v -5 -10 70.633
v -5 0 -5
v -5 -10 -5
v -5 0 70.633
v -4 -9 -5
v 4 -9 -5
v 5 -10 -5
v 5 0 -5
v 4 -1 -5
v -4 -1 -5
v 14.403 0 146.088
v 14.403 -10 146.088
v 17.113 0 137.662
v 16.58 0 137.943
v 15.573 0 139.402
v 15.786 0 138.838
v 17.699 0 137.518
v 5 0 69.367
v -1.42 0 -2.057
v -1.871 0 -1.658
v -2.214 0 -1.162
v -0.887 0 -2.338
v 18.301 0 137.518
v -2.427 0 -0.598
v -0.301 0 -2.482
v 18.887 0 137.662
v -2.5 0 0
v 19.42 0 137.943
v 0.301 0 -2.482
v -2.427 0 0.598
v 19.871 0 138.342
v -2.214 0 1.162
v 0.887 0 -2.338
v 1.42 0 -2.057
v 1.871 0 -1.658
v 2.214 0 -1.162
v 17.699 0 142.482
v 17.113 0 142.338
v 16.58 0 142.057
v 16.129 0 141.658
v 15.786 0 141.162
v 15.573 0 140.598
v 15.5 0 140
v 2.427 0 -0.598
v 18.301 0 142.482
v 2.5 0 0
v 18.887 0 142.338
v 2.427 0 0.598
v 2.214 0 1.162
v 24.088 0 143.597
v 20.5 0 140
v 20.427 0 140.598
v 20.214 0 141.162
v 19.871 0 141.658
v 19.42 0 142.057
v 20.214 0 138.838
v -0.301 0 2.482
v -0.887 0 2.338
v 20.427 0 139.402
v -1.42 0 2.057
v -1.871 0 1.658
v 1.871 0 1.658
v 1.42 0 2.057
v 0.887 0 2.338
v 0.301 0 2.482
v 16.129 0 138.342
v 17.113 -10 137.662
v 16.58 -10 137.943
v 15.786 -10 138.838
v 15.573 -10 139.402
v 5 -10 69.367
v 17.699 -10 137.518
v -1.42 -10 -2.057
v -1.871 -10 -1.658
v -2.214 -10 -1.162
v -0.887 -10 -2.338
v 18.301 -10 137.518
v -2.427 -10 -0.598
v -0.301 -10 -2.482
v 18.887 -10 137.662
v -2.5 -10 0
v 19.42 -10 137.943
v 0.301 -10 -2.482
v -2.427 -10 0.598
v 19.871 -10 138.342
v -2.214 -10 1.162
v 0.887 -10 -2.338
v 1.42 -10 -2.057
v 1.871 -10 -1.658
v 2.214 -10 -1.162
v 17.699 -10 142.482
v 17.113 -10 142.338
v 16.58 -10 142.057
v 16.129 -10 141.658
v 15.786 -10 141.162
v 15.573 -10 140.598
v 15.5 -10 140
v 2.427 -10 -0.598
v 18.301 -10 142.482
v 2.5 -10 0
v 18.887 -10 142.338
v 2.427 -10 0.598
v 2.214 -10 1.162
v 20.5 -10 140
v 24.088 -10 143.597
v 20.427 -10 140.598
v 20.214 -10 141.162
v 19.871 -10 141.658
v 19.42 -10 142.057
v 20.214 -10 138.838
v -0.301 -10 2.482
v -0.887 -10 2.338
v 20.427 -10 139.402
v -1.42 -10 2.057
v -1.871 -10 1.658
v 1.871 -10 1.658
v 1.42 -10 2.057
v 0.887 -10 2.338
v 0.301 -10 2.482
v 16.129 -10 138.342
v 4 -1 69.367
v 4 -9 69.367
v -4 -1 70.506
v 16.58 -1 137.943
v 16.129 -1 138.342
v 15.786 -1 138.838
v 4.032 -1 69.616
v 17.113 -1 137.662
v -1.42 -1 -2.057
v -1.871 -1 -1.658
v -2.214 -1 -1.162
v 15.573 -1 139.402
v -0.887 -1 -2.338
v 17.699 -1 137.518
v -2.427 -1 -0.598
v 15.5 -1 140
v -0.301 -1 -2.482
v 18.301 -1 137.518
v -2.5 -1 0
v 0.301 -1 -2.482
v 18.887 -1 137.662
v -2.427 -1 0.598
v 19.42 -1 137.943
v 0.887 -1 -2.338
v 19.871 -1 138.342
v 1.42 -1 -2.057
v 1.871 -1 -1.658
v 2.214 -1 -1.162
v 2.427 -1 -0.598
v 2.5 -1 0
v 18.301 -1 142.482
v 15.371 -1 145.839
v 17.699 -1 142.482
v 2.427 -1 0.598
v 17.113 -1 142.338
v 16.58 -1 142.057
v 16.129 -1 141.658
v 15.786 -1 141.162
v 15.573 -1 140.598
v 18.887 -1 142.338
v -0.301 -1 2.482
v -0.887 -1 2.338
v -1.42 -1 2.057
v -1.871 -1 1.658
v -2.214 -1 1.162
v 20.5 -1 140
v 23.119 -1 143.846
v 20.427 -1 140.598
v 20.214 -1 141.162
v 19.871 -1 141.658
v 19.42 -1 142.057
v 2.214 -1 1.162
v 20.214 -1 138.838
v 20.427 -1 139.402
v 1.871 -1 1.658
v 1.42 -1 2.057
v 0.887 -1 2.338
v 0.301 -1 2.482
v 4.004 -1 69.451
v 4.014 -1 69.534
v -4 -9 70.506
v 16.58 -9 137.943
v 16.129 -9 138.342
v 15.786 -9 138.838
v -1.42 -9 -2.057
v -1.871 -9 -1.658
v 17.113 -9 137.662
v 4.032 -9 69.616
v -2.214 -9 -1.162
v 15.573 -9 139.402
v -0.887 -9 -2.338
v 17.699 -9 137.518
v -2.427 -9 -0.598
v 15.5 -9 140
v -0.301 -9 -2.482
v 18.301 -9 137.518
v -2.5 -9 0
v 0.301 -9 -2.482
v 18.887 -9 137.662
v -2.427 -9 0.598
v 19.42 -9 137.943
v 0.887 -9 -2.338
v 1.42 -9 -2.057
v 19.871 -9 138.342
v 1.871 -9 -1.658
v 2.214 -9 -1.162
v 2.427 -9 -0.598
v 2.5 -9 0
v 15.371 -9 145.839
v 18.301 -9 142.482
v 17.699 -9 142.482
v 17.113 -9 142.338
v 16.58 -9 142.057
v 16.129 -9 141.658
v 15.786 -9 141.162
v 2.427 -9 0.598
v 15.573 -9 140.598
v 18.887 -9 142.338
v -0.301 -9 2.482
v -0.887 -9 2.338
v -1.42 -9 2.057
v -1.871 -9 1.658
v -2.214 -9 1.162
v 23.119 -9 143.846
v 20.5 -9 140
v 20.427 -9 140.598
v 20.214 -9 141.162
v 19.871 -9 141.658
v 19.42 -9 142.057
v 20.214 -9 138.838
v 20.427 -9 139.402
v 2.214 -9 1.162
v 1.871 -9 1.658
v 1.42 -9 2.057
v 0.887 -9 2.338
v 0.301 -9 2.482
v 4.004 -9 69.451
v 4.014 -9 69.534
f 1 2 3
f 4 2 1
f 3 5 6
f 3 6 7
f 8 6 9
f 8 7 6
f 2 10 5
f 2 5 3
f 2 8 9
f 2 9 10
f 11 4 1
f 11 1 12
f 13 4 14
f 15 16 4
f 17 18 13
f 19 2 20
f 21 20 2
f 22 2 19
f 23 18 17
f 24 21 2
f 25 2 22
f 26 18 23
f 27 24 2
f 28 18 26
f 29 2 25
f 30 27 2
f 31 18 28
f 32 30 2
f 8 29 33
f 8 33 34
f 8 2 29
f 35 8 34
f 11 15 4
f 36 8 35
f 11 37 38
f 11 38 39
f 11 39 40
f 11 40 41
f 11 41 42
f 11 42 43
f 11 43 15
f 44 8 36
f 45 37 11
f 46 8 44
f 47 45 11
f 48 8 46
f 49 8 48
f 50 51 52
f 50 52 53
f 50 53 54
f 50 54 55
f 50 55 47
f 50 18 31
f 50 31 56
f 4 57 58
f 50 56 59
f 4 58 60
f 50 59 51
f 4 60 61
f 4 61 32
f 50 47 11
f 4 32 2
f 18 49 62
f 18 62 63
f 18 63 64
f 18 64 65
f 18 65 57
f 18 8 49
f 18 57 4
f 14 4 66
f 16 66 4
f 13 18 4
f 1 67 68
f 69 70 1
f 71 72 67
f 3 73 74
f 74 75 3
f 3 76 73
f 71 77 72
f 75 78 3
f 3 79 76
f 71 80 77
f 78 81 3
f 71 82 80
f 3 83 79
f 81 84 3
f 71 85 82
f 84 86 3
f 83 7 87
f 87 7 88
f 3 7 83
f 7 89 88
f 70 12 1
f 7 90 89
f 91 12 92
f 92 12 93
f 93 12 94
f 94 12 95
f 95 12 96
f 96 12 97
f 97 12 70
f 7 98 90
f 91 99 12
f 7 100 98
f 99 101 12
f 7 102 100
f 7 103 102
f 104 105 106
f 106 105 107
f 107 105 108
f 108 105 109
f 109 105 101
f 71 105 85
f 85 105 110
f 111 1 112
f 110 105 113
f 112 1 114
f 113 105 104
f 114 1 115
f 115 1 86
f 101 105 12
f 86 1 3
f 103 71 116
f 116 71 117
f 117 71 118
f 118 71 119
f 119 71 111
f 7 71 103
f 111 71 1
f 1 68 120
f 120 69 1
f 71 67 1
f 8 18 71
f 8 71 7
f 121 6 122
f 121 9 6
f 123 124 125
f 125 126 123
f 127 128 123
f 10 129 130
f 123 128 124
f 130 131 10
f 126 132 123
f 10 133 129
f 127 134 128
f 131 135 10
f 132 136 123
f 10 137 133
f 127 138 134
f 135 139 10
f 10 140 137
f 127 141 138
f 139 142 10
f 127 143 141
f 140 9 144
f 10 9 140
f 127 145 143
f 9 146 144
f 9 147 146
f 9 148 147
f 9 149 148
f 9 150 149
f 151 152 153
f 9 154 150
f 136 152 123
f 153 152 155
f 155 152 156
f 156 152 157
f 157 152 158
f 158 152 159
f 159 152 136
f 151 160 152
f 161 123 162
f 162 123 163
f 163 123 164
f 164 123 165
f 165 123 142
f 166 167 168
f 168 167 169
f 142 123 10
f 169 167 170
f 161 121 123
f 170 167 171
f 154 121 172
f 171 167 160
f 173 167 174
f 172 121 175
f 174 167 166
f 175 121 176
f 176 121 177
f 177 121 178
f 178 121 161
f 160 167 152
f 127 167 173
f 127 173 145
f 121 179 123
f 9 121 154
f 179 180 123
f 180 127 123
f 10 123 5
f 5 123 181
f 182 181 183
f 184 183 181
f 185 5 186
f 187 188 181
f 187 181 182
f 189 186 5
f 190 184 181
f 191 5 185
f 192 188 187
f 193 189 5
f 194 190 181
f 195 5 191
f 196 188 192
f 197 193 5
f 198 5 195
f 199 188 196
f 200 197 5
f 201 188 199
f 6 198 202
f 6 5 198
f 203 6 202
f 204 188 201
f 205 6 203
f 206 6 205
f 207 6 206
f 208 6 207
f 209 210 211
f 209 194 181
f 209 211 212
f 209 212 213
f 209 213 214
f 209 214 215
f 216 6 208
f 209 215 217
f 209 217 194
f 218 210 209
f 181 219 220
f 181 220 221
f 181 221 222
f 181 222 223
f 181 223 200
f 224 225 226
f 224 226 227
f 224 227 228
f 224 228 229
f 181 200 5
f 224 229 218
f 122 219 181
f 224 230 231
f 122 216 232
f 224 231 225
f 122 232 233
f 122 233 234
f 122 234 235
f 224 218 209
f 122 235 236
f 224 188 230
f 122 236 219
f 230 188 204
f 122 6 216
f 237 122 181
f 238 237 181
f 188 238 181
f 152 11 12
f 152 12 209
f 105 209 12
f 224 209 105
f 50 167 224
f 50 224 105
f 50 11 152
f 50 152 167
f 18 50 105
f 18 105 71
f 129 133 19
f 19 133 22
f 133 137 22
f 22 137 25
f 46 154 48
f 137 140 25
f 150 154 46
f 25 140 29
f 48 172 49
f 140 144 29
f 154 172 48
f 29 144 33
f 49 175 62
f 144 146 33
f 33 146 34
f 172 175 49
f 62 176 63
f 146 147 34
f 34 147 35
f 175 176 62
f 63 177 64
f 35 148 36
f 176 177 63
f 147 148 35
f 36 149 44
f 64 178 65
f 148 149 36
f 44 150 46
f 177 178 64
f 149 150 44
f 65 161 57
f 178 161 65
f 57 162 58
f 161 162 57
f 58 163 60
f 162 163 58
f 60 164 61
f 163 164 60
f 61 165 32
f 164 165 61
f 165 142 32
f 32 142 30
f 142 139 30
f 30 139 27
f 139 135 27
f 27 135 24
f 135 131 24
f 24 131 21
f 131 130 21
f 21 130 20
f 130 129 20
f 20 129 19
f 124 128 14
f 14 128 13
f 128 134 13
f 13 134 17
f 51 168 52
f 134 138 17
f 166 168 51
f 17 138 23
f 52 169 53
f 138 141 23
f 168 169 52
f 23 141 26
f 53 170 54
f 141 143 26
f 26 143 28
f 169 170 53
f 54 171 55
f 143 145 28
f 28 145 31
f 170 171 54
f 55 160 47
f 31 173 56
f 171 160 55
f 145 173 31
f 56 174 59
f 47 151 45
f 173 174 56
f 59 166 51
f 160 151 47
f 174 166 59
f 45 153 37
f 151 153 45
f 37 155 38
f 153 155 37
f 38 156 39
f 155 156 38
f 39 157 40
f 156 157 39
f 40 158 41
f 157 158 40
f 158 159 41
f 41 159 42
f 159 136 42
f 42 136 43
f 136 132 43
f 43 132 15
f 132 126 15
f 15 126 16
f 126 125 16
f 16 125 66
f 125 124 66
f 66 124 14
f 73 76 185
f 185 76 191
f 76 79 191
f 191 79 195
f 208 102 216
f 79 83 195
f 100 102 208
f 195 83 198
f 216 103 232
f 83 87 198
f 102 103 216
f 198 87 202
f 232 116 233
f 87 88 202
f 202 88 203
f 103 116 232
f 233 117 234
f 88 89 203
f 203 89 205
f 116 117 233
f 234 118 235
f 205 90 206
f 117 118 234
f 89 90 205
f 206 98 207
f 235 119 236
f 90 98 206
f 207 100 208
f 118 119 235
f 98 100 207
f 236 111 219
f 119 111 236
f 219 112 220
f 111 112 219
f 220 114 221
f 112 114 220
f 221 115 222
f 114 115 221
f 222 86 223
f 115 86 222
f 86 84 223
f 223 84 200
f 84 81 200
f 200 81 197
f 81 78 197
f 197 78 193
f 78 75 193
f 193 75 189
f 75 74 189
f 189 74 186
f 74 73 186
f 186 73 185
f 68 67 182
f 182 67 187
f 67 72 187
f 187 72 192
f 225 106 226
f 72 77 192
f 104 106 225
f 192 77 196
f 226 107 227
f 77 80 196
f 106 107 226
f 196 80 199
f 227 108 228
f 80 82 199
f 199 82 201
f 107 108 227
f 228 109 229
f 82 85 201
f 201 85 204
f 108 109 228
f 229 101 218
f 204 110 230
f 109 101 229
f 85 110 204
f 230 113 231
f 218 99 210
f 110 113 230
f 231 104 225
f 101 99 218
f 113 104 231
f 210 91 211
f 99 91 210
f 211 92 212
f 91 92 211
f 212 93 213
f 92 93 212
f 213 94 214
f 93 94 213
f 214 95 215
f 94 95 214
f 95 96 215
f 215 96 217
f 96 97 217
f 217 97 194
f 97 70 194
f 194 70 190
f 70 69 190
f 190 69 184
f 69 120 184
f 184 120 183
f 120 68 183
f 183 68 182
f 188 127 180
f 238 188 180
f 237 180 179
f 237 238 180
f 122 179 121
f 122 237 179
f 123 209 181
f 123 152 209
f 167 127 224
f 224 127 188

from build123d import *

# Parameters (mm, degrees)
PAD_DEPTH    = 10
THICKNESS_T  = -1
SKETCH001_R  = 2.5
POCKET_DEPTH = 10.001


with BuildPart() as part:
    # Sketch → Pad (new body)
    with BuildSketch(Plane.XZ):
        Polygon((-5, -5), (-5, 70.632568), (14.402741, 146.08767), (24.08767, 143.597259), (5, 69.367432), (5, -5), align=None)
    extrude(amount=PAD_DEPTH)

    # Thickness
    thickness_openings = [part.faces().sort_by_distance(p)[0] for p in [
        (19.245205, -5, 144.842465),
        (0, -5, -5),
    ]]
    offset(amount=THICKNESS_T, openings=thickness_openings)

    # Sketch001 (on Face6 of Thickness) → Pocket (cut, through all)
    with BuildSketch(Plane.XZ.offset(10)):
        with Locations((18, 140)):
            Circle(SKETCH001_R)
        Circle(SKETCH001_R)
    extrude(amount=-POCKET_DEPTH, mode=Mode.SUBTRACT)


solid = part.part
